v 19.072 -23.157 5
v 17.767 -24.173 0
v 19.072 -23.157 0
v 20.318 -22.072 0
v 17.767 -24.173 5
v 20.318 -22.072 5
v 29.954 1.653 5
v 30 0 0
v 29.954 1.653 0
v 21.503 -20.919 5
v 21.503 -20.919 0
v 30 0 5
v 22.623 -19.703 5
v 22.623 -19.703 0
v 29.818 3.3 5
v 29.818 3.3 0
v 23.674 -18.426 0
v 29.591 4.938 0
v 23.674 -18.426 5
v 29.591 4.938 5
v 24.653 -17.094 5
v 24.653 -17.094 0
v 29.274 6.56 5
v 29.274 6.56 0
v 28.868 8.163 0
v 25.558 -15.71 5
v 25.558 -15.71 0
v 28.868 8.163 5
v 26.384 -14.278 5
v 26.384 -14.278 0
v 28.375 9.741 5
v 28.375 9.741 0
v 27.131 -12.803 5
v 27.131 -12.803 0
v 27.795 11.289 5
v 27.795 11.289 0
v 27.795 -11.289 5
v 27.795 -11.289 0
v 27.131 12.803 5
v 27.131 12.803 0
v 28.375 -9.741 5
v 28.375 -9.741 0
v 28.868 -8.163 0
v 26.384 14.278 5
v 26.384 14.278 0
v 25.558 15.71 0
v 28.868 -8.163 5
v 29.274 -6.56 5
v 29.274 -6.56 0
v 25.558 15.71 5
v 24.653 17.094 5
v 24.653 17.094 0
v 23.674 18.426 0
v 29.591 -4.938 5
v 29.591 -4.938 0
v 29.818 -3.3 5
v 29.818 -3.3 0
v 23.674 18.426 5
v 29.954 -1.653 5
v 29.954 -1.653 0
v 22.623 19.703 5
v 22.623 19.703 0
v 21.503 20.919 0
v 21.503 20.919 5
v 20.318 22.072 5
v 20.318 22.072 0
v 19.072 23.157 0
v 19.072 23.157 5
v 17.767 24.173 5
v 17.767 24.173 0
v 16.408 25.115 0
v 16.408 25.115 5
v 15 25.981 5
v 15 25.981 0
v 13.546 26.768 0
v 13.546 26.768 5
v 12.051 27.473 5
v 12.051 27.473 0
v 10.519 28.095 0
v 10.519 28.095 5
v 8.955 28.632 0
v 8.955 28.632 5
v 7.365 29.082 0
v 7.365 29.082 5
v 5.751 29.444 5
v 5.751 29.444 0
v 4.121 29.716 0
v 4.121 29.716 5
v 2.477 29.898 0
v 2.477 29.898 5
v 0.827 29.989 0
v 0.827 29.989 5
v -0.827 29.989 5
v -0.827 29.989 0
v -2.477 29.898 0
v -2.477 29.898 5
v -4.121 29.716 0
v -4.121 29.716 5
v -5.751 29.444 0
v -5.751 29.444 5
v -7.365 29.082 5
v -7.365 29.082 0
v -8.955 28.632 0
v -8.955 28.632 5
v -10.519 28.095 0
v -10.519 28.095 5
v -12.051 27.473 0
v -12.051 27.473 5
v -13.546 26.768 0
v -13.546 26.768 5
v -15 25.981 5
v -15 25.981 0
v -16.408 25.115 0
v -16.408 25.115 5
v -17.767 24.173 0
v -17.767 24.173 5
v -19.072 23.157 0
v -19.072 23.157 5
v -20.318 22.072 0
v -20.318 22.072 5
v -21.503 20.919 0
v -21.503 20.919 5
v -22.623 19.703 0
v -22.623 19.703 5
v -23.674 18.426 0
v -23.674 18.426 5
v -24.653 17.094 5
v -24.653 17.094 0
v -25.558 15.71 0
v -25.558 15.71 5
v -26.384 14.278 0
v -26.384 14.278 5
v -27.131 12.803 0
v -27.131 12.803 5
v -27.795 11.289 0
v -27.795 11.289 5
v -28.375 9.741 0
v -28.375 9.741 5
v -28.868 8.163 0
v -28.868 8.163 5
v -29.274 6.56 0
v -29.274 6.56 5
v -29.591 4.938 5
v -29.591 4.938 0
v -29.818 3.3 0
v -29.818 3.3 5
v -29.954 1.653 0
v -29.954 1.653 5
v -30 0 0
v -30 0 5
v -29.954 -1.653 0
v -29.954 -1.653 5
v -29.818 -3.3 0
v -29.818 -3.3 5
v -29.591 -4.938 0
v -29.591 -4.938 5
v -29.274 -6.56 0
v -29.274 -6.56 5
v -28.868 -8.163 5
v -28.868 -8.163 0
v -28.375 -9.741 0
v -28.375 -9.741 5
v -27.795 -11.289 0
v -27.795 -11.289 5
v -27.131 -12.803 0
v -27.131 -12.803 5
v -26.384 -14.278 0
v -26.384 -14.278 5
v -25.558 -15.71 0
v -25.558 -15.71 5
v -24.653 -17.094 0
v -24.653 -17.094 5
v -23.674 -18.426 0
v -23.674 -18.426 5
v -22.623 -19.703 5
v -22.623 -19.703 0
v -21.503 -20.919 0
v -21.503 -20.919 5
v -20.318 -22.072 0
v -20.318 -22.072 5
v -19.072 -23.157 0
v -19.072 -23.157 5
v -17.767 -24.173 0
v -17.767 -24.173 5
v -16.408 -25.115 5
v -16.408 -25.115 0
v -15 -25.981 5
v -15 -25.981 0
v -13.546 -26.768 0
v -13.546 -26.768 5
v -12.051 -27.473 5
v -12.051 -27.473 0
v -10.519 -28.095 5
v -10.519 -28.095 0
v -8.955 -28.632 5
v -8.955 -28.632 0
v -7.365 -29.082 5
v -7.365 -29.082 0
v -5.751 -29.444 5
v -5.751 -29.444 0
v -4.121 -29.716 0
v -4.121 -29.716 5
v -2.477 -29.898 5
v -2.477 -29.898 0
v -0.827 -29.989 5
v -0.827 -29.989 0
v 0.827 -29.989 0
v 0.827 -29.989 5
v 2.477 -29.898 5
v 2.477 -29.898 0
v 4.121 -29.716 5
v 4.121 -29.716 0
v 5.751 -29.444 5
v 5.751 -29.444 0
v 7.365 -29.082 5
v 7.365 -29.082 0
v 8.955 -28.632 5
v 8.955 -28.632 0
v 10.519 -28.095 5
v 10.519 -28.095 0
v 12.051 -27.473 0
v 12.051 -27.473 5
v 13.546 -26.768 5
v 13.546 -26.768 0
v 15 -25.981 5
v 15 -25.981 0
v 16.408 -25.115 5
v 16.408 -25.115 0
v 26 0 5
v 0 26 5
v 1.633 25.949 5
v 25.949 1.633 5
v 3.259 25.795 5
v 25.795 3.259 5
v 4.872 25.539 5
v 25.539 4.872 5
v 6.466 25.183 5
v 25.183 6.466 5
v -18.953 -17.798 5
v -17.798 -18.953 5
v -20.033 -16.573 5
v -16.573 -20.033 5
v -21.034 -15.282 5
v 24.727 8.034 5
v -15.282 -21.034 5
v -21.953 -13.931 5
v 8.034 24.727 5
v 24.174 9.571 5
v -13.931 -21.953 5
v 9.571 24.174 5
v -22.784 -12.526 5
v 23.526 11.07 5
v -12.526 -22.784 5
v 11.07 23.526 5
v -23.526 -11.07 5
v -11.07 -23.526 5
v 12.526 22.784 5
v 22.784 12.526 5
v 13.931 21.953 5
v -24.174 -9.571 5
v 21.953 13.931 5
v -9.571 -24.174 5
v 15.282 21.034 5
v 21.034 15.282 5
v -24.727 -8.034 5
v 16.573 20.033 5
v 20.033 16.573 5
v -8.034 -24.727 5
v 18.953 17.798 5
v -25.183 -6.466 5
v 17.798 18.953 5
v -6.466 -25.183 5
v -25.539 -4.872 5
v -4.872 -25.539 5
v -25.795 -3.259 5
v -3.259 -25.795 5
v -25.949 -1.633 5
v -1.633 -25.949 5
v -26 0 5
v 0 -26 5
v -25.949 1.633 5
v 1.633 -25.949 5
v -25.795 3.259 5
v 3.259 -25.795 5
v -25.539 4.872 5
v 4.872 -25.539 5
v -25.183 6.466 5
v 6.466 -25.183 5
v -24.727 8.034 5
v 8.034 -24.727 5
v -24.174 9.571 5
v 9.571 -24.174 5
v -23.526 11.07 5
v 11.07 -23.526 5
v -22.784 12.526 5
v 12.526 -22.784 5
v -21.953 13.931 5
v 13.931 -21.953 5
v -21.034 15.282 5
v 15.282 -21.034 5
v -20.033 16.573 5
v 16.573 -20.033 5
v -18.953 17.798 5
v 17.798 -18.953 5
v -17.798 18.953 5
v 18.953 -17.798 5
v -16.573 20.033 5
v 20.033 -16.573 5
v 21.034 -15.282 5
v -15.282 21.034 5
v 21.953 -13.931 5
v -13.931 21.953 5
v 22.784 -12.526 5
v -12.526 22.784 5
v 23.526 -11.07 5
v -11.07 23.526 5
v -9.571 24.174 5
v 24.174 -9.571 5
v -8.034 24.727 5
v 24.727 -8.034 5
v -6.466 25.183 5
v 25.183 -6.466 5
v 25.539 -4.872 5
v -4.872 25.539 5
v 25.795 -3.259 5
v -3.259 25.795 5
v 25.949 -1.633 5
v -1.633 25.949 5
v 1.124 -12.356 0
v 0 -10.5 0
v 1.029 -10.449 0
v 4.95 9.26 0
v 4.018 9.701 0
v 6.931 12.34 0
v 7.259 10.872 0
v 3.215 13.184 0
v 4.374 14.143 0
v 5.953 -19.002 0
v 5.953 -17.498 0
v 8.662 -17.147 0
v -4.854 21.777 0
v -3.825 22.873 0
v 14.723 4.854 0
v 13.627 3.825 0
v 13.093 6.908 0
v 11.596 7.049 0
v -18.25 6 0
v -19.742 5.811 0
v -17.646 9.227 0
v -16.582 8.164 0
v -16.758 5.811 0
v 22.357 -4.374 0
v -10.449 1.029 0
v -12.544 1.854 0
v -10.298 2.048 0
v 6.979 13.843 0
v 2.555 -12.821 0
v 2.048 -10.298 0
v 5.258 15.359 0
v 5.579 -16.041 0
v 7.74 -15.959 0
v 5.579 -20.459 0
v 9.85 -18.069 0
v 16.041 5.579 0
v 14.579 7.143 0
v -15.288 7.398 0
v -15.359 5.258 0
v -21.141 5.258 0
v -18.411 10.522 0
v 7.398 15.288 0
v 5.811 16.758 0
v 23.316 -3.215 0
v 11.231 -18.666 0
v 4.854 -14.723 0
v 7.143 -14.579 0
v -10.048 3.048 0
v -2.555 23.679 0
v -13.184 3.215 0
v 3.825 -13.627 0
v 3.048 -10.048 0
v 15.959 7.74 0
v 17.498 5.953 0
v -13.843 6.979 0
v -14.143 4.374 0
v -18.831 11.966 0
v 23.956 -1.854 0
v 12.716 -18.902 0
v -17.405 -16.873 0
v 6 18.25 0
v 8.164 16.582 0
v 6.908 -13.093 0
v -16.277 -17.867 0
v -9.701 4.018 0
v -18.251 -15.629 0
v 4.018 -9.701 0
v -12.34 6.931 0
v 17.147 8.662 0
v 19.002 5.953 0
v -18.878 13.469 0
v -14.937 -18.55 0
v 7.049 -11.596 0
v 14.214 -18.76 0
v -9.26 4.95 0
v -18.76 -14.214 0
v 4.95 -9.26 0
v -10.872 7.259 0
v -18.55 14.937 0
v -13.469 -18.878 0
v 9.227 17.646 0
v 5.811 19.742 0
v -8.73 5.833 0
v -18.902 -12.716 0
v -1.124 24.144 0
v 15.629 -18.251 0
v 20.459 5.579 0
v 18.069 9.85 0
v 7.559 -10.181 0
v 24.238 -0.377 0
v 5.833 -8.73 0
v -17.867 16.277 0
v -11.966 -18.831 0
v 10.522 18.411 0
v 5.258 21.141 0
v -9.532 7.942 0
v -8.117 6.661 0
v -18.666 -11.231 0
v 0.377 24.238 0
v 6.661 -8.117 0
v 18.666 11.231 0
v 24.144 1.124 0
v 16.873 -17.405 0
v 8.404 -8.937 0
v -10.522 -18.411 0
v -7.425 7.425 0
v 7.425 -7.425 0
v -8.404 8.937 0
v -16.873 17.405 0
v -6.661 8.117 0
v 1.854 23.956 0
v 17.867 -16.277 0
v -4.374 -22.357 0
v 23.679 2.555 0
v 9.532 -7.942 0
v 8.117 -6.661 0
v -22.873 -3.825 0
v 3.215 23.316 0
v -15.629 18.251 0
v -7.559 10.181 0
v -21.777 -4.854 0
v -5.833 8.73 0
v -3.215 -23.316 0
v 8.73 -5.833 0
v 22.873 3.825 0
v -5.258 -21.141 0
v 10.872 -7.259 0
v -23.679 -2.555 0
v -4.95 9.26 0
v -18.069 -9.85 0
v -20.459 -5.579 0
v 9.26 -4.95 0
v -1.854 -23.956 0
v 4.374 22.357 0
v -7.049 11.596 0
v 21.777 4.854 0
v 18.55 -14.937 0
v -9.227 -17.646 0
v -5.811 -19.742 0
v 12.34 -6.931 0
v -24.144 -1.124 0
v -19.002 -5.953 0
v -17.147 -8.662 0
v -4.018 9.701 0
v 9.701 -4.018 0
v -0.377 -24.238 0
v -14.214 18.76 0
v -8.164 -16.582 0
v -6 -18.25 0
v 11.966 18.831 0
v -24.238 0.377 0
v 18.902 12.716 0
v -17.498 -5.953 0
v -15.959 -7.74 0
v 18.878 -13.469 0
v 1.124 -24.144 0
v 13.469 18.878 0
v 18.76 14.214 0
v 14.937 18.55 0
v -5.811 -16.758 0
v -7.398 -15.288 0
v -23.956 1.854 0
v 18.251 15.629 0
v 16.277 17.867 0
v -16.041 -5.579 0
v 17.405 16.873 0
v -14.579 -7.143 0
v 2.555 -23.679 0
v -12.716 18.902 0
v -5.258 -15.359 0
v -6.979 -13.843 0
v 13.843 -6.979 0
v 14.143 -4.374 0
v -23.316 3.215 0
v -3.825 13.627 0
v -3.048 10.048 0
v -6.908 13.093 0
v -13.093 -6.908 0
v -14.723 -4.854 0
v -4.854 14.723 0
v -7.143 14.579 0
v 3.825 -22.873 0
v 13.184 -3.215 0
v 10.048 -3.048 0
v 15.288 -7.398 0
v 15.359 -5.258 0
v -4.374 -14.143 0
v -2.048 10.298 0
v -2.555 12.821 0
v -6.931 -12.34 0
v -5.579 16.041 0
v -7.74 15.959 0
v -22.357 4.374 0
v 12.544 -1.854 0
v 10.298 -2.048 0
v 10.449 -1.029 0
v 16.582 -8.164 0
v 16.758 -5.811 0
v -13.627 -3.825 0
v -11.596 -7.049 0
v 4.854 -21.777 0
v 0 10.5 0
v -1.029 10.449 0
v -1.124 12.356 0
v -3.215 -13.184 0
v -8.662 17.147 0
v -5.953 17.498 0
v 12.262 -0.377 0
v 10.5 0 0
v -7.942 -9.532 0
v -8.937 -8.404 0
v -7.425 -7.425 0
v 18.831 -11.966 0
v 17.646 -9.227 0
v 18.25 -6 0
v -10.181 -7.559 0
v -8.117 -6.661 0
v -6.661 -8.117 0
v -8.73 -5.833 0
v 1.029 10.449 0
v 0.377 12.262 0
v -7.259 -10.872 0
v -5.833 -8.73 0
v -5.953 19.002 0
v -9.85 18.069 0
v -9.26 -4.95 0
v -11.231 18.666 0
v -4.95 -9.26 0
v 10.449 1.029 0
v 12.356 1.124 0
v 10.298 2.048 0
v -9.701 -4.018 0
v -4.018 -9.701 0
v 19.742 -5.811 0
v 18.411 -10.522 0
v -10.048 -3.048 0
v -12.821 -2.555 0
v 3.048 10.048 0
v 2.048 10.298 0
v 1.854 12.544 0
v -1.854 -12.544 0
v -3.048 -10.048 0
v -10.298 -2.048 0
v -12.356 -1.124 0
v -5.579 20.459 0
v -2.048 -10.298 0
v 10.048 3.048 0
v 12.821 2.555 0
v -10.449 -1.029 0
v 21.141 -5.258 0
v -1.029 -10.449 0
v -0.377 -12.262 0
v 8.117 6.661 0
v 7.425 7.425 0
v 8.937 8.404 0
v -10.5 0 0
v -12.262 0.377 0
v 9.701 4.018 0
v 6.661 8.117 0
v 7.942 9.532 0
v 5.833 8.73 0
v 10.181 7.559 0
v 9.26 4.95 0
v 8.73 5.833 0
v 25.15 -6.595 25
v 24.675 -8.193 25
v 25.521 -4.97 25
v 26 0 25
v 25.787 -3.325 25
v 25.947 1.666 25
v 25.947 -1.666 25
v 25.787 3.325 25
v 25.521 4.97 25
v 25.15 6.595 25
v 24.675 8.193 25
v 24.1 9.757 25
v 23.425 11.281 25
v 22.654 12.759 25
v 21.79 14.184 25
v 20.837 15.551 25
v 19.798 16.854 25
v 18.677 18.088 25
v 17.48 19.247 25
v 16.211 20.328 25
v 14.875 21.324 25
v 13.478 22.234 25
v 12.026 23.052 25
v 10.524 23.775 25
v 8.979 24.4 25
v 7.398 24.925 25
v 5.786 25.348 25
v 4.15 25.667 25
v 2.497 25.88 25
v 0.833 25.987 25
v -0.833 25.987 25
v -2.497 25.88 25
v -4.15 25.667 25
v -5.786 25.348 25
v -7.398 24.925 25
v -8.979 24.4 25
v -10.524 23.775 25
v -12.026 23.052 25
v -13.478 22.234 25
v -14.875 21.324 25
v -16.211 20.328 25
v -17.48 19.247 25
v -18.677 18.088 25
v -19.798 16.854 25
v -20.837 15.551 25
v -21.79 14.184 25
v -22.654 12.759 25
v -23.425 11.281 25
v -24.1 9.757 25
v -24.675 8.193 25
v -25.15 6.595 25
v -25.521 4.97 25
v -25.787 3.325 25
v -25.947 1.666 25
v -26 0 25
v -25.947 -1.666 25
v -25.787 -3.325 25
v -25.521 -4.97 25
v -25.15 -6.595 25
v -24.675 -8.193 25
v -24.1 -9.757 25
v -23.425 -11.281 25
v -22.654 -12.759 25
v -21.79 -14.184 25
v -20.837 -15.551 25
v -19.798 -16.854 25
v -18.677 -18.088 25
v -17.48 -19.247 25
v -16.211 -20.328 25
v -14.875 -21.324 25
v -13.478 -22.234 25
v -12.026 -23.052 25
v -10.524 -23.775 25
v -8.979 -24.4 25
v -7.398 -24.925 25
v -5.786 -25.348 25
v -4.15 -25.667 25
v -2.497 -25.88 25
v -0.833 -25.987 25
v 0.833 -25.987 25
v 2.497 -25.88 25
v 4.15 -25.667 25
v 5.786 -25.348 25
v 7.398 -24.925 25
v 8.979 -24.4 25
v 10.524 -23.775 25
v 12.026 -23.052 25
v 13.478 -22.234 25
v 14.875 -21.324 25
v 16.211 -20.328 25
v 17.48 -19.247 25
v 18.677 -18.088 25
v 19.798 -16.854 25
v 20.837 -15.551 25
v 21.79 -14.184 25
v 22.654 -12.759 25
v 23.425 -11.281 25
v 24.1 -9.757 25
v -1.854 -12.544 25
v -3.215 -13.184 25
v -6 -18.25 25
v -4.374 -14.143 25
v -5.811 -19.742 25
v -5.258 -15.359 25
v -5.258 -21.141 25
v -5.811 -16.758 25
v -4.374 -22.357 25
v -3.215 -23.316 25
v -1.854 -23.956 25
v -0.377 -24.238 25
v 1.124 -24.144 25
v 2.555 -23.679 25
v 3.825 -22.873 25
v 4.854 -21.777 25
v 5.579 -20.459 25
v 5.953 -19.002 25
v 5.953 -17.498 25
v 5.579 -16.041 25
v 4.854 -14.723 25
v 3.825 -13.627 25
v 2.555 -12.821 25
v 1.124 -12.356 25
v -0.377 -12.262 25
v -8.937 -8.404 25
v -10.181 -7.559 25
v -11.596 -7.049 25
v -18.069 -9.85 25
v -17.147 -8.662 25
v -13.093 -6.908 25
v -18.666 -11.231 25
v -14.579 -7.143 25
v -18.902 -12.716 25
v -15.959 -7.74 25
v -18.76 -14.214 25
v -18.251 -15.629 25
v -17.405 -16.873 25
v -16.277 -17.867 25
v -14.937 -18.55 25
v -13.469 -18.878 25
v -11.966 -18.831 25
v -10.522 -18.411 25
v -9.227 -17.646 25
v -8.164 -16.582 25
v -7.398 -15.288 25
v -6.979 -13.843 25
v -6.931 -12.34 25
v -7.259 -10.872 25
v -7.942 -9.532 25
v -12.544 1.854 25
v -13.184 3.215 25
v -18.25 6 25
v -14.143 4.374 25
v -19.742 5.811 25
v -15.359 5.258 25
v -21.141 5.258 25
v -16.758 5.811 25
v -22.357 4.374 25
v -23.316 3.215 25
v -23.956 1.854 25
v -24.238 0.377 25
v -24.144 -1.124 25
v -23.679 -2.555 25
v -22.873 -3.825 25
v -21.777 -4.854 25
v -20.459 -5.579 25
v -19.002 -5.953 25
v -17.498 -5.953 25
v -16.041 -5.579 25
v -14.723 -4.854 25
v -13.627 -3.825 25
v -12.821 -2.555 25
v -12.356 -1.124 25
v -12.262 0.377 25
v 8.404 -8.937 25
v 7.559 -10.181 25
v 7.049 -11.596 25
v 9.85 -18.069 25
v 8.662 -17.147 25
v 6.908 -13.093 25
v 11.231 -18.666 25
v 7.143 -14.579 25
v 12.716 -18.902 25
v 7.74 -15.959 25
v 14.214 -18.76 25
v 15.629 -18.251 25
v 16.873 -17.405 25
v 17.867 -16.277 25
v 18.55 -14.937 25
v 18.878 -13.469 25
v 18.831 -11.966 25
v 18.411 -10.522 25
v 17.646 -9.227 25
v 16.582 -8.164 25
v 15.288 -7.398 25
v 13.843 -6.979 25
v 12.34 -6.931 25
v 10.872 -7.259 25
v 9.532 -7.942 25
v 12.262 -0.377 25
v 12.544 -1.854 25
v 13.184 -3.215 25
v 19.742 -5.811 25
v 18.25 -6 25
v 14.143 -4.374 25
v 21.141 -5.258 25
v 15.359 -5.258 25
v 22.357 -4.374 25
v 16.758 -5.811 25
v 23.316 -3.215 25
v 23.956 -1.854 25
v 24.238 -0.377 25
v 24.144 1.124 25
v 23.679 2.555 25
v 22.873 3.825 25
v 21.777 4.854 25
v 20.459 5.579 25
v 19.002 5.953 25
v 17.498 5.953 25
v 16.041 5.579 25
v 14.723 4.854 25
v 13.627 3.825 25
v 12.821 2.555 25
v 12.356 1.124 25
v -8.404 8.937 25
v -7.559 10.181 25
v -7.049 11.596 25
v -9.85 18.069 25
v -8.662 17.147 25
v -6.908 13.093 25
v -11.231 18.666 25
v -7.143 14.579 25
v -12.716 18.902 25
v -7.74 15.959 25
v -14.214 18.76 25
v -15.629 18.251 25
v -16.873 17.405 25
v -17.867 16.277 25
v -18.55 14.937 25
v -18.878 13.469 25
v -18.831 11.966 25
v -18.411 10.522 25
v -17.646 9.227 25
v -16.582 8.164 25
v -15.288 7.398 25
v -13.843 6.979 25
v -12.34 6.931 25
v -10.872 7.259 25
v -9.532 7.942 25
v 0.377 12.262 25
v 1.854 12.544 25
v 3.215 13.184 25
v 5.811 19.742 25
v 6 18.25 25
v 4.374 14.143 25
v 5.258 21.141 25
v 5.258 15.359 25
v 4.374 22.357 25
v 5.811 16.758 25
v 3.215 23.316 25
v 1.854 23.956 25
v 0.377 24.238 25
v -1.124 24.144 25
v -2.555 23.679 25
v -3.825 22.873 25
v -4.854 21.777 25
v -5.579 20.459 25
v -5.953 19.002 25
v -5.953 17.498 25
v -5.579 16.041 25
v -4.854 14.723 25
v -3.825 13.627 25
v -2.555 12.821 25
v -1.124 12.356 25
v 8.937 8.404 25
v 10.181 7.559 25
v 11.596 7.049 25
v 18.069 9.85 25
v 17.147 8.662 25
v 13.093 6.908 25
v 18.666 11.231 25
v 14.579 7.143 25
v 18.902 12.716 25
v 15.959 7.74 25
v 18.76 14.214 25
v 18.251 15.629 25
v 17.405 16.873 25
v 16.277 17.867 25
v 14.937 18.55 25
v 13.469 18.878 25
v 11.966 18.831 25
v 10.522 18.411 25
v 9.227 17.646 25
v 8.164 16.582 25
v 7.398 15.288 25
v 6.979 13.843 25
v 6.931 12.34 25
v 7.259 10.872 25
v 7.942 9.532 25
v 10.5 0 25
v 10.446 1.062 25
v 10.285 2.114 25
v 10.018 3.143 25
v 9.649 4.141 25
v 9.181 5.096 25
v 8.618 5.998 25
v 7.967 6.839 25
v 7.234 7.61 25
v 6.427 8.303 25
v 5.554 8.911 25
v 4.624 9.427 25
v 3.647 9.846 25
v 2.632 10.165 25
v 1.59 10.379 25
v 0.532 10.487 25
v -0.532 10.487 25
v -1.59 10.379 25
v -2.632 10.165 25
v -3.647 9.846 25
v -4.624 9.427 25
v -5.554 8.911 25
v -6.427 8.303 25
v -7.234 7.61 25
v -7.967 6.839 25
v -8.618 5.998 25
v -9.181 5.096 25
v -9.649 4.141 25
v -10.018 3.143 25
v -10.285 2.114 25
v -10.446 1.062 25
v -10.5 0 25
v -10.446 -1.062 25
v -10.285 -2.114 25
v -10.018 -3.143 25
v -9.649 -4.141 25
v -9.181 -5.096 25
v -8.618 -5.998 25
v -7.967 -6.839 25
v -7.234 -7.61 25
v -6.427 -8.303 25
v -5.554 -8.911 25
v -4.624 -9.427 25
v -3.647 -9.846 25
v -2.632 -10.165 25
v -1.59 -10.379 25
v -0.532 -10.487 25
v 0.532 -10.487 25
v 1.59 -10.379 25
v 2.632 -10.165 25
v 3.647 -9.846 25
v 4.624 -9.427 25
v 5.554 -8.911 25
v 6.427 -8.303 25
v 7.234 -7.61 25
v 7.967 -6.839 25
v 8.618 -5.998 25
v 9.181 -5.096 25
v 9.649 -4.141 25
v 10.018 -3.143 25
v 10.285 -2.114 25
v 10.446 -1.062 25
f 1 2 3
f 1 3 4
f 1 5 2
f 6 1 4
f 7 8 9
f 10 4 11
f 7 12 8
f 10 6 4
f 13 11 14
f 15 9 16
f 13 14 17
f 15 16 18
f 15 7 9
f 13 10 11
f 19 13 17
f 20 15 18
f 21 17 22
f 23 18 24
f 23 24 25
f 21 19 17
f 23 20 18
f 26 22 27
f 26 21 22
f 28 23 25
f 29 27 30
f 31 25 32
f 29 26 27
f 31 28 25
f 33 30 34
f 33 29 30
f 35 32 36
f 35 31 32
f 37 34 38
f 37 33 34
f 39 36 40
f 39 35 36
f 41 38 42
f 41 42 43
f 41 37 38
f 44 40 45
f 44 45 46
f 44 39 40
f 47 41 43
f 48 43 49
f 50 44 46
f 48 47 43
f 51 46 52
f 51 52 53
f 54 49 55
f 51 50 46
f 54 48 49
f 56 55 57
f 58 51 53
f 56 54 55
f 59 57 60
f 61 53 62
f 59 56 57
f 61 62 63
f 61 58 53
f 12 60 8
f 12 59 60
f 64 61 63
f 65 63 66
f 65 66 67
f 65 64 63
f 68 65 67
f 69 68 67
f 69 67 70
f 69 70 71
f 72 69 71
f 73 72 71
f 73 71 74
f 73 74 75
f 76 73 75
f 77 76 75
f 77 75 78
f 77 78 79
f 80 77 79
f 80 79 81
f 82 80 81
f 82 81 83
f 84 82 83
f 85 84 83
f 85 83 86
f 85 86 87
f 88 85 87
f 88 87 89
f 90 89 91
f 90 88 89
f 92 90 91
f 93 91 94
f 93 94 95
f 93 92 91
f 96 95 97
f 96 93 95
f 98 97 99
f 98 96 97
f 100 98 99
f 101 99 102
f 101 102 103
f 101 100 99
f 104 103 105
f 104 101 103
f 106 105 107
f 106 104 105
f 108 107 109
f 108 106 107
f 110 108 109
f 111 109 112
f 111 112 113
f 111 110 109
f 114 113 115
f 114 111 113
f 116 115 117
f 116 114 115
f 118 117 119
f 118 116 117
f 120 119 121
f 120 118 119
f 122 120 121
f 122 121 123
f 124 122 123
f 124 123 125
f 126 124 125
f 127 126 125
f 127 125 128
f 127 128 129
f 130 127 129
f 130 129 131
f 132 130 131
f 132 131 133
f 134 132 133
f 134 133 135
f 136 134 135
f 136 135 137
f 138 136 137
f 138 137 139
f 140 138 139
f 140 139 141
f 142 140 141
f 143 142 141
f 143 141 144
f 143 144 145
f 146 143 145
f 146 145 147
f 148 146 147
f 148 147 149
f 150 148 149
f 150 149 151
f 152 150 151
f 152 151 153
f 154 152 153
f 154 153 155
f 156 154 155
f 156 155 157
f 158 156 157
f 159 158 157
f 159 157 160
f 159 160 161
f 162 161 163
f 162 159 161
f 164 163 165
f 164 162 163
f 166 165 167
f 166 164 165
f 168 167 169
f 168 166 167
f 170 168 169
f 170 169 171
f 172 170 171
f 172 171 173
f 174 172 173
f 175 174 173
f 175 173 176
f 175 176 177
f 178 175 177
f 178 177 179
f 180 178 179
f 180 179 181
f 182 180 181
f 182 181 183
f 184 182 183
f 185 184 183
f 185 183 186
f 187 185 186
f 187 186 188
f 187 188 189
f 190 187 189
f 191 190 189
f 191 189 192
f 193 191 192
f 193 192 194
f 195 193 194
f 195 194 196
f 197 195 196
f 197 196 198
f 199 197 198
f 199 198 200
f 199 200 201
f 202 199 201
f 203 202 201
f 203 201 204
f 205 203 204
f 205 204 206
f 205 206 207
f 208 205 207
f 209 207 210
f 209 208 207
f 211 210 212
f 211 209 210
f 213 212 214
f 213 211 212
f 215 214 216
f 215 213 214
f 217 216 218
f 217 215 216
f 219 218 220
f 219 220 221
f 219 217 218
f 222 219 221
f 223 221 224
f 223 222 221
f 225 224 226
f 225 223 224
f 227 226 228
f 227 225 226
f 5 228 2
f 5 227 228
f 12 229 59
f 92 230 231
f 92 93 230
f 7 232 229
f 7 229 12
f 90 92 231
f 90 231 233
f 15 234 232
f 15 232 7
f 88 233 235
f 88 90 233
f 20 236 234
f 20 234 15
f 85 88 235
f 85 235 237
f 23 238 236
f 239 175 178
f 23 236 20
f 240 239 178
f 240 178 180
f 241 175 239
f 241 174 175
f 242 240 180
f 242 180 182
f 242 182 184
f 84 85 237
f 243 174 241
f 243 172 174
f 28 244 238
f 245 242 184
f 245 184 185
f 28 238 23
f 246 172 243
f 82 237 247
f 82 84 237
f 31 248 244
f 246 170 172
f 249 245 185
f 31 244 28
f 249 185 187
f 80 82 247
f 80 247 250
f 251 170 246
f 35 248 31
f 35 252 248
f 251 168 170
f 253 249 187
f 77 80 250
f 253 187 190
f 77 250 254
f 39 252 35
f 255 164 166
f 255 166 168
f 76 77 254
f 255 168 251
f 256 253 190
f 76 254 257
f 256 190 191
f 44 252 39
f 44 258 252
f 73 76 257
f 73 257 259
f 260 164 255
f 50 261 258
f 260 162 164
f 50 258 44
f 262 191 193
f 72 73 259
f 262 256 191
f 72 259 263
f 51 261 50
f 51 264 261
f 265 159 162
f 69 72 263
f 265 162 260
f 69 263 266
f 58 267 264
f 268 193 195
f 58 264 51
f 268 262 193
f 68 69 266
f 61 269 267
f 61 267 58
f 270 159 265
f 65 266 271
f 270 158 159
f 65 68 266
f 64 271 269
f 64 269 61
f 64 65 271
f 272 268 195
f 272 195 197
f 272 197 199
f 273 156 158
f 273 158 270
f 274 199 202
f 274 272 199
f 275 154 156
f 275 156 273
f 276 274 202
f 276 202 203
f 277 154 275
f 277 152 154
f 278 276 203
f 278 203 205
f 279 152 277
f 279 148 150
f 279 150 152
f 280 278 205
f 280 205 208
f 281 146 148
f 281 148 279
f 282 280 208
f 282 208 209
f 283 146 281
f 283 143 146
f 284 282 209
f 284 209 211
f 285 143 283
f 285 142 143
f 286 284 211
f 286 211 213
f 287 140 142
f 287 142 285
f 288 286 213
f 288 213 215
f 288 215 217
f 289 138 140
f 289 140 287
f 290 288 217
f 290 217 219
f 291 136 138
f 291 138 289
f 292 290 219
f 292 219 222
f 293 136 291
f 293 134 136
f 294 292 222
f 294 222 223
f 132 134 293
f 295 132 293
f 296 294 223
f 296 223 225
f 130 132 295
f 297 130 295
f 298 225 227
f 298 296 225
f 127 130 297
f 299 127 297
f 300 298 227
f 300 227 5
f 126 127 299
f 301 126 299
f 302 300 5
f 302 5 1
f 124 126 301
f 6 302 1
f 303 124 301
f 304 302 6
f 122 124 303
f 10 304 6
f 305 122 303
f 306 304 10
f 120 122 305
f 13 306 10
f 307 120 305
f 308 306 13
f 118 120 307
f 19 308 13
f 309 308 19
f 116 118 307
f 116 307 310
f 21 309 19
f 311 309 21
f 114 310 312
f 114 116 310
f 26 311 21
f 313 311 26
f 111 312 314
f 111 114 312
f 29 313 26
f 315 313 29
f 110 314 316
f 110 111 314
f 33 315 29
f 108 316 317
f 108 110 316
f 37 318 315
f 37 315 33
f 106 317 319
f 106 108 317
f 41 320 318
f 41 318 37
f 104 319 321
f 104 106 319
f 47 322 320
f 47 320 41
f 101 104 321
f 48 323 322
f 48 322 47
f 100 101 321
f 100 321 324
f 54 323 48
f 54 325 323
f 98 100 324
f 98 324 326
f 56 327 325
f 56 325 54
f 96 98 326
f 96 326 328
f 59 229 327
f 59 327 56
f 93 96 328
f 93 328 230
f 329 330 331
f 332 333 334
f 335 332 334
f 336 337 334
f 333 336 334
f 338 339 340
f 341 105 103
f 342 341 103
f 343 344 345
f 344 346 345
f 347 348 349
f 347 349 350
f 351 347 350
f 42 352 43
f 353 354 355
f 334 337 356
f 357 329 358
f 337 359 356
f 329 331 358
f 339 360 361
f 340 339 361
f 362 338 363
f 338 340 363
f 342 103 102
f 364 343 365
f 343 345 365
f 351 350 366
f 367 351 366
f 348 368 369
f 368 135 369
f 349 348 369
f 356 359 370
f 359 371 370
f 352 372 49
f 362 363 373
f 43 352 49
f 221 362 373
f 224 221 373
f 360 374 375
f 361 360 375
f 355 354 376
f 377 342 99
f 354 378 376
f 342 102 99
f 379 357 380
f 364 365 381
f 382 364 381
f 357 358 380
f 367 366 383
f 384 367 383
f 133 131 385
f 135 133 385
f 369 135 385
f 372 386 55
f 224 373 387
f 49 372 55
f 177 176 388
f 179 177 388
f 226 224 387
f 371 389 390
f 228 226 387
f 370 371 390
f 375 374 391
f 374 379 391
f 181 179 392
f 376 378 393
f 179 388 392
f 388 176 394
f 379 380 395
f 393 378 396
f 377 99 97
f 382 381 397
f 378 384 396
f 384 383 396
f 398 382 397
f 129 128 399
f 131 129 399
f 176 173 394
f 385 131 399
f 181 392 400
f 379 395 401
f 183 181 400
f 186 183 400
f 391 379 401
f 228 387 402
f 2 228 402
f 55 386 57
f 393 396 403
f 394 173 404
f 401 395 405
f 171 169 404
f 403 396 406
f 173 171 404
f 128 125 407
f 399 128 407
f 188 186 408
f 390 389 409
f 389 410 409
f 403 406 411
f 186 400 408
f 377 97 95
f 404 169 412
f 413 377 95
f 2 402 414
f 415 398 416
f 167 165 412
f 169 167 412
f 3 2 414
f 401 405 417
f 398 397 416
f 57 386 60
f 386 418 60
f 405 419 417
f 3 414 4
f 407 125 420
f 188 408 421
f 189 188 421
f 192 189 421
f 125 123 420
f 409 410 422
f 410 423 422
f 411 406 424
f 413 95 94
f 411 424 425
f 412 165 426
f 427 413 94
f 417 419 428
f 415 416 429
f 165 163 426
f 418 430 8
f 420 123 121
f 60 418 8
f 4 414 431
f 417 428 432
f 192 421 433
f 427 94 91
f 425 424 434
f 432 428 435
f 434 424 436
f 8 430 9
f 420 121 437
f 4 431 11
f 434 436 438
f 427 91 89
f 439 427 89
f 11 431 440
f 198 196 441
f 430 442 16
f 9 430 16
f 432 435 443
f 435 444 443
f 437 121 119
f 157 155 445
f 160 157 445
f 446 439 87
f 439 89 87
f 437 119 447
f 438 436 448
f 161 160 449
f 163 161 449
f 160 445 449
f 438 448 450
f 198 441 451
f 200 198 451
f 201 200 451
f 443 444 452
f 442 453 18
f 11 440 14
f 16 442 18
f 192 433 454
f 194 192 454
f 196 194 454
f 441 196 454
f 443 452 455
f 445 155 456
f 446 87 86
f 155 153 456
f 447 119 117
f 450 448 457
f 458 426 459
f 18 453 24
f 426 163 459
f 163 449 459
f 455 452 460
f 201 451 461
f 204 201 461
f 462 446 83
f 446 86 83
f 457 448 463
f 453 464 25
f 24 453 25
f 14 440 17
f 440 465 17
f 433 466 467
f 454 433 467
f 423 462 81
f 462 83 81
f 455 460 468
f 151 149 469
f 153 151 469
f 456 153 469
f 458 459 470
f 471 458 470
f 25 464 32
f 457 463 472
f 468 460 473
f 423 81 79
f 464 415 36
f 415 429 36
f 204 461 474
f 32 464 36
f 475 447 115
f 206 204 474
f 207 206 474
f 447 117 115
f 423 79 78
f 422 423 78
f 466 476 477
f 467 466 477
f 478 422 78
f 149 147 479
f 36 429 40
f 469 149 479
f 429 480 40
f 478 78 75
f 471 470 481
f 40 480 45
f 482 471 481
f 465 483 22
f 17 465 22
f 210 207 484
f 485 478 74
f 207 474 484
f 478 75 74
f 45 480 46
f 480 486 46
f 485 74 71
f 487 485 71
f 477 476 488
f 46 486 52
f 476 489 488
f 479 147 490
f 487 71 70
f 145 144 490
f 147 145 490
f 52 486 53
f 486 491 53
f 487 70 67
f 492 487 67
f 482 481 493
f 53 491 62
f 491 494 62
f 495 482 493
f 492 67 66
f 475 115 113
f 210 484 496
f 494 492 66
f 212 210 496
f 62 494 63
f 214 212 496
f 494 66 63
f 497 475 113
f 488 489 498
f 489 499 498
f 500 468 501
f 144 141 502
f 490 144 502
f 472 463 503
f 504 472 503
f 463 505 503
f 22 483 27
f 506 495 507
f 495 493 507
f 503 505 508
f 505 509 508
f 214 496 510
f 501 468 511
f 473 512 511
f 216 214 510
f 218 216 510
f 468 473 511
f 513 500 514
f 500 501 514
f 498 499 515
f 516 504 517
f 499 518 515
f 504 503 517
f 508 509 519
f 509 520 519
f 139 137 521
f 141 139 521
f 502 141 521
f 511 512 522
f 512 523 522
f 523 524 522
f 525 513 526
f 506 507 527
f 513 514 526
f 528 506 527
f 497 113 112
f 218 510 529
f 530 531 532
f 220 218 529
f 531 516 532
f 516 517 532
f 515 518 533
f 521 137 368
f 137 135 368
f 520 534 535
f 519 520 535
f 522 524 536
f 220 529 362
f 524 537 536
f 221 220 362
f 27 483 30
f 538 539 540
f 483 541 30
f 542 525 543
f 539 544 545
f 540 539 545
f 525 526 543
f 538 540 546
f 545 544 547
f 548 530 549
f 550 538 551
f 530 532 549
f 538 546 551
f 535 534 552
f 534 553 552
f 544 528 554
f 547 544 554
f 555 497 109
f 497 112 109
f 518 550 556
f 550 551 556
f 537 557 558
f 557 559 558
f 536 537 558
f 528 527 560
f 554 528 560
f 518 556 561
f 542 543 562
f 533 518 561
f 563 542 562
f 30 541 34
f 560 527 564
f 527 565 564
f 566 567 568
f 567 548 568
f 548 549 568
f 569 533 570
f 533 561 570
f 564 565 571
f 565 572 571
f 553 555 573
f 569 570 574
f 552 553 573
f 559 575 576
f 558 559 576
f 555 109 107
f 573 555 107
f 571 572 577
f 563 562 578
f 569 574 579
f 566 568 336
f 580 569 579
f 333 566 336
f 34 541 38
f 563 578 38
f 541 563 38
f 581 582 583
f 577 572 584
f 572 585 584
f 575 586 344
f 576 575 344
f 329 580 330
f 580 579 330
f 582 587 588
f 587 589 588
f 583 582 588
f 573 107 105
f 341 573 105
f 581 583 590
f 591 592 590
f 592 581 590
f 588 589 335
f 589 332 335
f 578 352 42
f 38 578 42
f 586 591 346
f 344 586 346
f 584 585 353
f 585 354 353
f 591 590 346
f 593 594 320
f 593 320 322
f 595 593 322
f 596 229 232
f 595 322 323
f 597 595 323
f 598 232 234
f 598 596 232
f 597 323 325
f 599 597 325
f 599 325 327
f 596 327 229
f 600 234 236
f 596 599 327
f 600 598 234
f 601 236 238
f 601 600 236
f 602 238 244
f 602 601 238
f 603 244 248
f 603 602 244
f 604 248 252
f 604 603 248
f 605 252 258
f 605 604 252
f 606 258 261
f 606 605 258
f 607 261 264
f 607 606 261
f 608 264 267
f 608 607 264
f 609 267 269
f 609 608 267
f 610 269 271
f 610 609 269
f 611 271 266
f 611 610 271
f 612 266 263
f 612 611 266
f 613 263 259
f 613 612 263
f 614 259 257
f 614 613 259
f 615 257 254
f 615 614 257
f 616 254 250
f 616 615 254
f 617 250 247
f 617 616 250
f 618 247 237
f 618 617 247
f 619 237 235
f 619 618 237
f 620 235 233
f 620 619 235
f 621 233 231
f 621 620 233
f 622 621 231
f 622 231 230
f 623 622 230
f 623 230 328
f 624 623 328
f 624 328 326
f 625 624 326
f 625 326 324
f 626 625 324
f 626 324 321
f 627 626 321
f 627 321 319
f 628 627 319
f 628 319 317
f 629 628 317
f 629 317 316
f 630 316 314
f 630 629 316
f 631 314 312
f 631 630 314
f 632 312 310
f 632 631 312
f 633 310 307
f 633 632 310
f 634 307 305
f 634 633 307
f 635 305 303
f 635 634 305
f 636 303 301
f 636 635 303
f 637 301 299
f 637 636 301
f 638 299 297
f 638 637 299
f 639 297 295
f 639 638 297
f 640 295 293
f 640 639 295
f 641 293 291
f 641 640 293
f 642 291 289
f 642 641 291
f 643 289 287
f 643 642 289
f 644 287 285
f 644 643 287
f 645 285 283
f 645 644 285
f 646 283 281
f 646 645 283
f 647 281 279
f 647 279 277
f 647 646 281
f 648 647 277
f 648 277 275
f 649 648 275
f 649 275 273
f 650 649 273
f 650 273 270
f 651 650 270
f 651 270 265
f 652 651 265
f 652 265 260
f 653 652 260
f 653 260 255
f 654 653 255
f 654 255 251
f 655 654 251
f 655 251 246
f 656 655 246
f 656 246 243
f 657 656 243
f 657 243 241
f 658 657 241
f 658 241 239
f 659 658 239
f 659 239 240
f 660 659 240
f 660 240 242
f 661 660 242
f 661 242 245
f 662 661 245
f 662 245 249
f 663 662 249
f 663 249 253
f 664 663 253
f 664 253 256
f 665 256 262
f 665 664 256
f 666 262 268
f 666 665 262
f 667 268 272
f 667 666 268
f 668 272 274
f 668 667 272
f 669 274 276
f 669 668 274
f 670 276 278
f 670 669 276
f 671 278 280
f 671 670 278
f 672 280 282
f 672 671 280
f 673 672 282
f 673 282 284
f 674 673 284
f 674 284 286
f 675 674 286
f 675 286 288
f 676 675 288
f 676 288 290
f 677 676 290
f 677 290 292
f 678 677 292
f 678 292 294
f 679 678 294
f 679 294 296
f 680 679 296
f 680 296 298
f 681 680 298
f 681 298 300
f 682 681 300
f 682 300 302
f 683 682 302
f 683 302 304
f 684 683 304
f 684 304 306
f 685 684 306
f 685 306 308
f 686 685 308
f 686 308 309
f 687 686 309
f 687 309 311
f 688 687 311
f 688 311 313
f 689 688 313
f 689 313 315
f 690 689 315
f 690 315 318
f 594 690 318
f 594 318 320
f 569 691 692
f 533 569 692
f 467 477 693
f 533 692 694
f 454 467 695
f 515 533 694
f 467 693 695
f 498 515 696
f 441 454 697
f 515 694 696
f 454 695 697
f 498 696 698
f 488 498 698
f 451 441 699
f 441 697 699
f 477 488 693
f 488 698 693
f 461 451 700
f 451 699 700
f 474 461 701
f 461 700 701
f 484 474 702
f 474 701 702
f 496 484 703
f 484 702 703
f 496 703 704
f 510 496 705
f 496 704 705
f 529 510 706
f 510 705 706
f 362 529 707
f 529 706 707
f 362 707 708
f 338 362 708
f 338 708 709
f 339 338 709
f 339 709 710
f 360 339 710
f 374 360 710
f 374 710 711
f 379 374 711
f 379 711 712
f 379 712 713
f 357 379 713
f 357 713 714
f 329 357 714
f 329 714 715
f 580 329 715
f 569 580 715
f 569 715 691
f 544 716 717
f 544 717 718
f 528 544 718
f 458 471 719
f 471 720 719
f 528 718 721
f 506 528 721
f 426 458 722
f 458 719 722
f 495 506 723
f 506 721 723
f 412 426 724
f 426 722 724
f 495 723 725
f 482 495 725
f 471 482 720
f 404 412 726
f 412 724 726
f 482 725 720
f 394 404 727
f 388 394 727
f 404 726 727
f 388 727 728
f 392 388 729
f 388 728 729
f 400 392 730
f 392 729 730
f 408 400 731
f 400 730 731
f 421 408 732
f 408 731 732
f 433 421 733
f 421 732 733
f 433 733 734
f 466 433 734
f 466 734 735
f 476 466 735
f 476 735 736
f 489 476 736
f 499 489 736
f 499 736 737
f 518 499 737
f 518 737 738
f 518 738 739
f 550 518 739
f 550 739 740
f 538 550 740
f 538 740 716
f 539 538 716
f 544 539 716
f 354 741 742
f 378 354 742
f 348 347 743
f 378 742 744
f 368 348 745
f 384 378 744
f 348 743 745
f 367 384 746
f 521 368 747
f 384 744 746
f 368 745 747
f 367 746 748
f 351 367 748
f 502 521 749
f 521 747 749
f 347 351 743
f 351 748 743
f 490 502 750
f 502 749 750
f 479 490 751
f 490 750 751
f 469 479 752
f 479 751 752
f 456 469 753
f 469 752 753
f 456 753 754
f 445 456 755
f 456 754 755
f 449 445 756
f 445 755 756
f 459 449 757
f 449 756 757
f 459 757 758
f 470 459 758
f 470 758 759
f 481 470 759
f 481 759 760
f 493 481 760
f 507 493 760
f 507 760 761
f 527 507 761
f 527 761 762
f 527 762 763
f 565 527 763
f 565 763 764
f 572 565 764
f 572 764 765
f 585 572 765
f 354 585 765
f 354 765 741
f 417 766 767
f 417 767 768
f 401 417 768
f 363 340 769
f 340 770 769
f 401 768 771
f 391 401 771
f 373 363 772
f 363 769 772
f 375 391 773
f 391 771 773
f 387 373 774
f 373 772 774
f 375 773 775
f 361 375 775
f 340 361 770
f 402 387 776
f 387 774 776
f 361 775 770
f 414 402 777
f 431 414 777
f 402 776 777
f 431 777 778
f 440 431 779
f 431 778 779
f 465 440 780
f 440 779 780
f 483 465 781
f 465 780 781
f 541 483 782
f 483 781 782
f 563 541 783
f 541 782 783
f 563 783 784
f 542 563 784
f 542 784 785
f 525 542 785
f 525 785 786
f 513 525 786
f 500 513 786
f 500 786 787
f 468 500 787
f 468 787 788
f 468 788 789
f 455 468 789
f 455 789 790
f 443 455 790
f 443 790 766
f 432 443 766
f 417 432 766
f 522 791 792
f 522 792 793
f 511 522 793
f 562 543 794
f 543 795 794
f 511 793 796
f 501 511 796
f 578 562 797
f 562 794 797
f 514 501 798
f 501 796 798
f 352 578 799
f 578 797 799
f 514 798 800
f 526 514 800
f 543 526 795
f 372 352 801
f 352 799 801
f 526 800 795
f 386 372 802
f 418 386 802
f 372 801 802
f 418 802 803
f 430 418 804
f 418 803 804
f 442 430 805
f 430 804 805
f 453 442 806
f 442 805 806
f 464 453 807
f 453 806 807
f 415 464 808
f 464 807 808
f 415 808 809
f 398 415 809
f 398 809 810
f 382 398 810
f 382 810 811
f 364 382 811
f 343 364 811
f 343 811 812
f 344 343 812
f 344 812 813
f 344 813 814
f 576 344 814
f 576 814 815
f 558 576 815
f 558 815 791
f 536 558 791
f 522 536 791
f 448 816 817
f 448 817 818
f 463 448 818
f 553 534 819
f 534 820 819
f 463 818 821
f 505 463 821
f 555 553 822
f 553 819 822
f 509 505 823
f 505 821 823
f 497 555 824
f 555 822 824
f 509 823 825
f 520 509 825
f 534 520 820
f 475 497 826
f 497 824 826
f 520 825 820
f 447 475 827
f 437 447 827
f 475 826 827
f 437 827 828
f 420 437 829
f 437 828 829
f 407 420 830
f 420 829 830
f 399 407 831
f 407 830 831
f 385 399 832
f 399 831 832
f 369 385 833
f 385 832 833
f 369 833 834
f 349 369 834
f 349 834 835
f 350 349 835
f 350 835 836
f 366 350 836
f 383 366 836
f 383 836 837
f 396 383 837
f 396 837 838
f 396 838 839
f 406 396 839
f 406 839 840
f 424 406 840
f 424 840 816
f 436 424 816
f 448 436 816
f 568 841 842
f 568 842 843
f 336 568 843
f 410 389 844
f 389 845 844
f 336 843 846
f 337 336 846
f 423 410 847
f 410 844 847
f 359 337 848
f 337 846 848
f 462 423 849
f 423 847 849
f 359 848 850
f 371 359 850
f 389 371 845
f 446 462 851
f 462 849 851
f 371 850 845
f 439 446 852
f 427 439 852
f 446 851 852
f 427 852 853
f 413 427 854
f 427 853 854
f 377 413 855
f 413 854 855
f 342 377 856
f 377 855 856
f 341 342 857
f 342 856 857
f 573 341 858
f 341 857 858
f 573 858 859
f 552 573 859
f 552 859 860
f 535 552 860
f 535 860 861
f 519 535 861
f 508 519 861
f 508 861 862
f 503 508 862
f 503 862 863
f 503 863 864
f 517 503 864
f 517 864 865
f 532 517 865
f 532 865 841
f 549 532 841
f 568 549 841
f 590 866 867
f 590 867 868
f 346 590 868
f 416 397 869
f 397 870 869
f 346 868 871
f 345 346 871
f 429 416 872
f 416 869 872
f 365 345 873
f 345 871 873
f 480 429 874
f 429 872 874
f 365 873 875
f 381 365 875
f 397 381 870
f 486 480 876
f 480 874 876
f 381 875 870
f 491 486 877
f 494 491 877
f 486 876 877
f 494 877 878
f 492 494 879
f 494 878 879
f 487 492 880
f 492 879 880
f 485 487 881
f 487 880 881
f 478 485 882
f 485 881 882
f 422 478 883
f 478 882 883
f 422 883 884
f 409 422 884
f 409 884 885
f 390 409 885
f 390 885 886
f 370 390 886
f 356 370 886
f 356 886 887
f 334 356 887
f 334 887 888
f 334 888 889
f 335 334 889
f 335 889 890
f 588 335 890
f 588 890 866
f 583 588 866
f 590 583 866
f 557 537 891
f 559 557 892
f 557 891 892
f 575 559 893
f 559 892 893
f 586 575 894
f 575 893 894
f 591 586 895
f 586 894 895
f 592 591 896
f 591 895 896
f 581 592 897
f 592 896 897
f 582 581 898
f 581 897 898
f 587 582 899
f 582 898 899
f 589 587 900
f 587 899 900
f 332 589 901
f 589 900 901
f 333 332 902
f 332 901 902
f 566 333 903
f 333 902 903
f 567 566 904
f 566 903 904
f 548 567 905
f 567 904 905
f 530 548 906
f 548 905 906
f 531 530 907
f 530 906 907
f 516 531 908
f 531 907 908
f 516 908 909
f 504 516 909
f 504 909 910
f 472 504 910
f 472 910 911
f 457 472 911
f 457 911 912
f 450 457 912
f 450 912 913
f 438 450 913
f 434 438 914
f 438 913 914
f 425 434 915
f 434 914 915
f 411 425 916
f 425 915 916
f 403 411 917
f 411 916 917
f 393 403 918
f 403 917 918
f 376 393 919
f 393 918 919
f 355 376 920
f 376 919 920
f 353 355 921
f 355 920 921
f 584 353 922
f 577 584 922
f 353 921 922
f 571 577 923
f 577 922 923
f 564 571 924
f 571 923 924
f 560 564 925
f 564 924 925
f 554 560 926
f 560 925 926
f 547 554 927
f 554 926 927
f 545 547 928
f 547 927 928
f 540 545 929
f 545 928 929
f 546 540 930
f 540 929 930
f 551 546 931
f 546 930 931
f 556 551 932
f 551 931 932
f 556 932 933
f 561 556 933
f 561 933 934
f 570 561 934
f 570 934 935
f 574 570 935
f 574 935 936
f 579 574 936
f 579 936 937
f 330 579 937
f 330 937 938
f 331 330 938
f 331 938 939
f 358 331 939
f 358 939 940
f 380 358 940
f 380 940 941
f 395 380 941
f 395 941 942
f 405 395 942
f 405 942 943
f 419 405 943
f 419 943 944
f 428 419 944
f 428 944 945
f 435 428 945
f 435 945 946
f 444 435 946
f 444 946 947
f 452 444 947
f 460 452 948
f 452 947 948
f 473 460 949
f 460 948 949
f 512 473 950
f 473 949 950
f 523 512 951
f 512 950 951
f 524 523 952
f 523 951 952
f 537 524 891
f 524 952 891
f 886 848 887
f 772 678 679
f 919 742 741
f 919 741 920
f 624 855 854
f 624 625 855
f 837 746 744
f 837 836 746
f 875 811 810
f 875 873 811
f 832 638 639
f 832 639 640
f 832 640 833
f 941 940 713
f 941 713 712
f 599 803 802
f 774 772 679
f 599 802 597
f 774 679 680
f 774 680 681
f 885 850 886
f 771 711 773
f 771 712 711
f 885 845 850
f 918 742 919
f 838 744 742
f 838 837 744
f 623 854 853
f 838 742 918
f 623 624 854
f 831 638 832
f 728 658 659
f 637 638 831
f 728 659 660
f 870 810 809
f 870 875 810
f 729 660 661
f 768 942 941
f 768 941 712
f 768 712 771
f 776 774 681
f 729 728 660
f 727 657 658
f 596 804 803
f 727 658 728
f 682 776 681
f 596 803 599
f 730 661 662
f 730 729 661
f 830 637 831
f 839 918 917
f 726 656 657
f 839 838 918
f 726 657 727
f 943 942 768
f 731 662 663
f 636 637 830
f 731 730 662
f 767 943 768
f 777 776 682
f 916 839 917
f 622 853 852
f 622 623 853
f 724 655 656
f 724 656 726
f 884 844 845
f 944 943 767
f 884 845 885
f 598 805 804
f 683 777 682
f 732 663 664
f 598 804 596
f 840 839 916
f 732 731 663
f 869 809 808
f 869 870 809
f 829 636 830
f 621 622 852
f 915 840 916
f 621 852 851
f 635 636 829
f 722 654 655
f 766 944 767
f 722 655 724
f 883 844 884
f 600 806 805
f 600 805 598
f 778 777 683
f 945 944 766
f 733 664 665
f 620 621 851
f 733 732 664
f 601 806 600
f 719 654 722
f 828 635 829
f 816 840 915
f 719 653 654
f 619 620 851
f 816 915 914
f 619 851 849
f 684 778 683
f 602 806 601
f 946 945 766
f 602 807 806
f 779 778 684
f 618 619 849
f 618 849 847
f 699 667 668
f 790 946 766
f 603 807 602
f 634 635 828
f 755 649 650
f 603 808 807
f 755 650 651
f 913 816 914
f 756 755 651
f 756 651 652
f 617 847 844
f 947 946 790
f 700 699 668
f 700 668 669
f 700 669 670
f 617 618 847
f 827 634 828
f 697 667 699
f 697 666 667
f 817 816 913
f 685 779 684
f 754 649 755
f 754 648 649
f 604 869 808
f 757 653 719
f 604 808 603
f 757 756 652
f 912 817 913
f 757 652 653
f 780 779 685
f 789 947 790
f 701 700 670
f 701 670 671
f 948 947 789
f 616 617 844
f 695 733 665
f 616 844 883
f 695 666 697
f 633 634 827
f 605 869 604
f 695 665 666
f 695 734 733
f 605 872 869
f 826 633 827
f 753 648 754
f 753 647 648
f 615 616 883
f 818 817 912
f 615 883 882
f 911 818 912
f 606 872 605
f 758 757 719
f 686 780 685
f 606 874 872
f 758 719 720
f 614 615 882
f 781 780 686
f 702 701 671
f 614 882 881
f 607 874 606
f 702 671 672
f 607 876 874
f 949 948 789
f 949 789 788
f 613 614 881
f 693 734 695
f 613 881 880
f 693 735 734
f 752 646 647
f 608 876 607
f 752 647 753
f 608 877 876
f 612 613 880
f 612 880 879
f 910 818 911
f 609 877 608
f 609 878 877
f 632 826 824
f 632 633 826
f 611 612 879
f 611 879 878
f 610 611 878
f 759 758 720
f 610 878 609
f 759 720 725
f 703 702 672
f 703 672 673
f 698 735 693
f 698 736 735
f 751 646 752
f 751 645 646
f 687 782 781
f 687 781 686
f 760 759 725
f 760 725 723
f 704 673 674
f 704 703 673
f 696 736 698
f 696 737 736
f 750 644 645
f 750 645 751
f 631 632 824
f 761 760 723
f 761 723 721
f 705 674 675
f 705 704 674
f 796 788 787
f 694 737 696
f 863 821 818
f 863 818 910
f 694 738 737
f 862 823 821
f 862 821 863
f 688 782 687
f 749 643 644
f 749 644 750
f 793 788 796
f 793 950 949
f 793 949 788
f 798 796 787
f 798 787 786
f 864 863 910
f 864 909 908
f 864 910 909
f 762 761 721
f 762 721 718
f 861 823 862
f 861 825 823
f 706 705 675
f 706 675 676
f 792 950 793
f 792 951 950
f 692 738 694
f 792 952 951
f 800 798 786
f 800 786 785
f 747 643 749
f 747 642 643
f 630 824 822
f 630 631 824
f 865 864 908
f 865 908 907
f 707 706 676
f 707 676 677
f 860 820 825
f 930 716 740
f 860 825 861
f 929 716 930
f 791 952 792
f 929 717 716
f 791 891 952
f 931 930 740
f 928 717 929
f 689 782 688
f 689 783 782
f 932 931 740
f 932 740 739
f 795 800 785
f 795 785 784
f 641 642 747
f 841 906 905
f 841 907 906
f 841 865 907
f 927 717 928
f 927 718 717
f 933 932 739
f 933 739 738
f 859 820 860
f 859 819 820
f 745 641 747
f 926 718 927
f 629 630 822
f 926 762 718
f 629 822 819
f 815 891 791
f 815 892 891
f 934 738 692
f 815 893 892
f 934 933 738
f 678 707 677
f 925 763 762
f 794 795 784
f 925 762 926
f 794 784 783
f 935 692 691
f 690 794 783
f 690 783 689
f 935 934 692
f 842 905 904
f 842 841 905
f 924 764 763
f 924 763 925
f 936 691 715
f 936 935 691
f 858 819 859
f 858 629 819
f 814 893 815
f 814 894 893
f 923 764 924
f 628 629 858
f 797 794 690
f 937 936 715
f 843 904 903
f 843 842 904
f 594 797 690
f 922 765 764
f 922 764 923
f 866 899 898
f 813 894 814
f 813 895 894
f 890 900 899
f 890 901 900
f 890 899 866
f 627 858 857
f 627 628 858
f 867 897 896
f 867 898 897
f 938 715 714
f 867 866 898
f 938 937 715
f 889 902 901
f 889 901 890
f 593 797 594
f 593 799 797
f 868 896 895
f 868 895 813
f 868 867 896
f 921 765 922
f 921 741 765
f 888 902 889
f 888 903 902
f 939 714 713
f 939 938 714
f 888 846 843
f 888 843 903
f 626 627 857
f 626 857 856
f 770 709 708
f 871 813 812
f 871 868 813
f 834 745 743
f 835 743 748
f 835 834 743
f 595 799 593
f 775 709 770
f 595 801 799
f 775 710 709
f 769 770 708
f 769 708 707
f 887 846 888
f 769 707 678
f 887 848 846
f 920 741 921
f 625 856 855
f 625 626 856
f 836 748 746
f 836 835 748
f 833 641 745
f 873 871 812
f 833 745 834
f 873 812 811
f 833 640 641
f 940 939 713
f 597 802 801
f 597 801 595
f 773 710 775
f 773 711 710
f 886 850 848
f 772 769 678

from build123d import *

# Parameters (mm, degrees)
CYLINDER001_R      = 10.5
CYLINDER001_DEPTH  = 25
CYLINDER_R         = 26
CYLINDER_DEPTH     = 25
CYLINDER002_R      = 30
CYLINDER002_DEPTH  = 5
SKETCH_R           = 6
POCKET_DEPTH       = 40
POLARPATTERN_COUNT = 8


with BuildPart() as cylinder001:
    # Cylinder001 → Cylinder001 (new body)
    with BuildSketch(Plane.XY):
        Circle(CYLINDER001_R)
    extrude(amount=CYLINDER001_DEPTH)


with BuildPart() as cylinder:
    # Cylinder → Cylinder (new body)
    with BuildSketch(Plane.XY):
        Circle(CYLINDER_R)
    extrude(amount=CYLINDER_DEPTH)


with BuildPart() as polarpattern:
    # Cylinder002 → Cylinder002 (new body)
    with BuildSketch(Plane.XY):
        Circle(CYLINDER002_R)
    extrude(amount=CYLINDER002_DEPTH)

    # Fusion: union Cylinder
    add(cylinder.part)

    # Cut: cut Cylinder001
    add(cylinder001.part, mode=Mode.SUBTRACT)

    # Sketch → Pocket (cut)
    with BuildSketch(Plane.XY.offset(25)):
        with Locations((0, 18.25)):
            Circle(SKETCH_R)
    pocket = extrude(amount=-POCKET_DEPTH, mode=Mode.SUBTRACT)

    # PolarPattern: Pocket ×8 about axis
    polarpattern_axis = Axis((0, 0, 25), (0, 0, 1))
    for i in range(1, POLARPATTERN_COUNT):
        add(pocket.rotate(polarpattern_axis, i * 360 / POLARPATTERN_COUNT), mode=Mode.SUBTRACT)


solid = polarpattern.part
